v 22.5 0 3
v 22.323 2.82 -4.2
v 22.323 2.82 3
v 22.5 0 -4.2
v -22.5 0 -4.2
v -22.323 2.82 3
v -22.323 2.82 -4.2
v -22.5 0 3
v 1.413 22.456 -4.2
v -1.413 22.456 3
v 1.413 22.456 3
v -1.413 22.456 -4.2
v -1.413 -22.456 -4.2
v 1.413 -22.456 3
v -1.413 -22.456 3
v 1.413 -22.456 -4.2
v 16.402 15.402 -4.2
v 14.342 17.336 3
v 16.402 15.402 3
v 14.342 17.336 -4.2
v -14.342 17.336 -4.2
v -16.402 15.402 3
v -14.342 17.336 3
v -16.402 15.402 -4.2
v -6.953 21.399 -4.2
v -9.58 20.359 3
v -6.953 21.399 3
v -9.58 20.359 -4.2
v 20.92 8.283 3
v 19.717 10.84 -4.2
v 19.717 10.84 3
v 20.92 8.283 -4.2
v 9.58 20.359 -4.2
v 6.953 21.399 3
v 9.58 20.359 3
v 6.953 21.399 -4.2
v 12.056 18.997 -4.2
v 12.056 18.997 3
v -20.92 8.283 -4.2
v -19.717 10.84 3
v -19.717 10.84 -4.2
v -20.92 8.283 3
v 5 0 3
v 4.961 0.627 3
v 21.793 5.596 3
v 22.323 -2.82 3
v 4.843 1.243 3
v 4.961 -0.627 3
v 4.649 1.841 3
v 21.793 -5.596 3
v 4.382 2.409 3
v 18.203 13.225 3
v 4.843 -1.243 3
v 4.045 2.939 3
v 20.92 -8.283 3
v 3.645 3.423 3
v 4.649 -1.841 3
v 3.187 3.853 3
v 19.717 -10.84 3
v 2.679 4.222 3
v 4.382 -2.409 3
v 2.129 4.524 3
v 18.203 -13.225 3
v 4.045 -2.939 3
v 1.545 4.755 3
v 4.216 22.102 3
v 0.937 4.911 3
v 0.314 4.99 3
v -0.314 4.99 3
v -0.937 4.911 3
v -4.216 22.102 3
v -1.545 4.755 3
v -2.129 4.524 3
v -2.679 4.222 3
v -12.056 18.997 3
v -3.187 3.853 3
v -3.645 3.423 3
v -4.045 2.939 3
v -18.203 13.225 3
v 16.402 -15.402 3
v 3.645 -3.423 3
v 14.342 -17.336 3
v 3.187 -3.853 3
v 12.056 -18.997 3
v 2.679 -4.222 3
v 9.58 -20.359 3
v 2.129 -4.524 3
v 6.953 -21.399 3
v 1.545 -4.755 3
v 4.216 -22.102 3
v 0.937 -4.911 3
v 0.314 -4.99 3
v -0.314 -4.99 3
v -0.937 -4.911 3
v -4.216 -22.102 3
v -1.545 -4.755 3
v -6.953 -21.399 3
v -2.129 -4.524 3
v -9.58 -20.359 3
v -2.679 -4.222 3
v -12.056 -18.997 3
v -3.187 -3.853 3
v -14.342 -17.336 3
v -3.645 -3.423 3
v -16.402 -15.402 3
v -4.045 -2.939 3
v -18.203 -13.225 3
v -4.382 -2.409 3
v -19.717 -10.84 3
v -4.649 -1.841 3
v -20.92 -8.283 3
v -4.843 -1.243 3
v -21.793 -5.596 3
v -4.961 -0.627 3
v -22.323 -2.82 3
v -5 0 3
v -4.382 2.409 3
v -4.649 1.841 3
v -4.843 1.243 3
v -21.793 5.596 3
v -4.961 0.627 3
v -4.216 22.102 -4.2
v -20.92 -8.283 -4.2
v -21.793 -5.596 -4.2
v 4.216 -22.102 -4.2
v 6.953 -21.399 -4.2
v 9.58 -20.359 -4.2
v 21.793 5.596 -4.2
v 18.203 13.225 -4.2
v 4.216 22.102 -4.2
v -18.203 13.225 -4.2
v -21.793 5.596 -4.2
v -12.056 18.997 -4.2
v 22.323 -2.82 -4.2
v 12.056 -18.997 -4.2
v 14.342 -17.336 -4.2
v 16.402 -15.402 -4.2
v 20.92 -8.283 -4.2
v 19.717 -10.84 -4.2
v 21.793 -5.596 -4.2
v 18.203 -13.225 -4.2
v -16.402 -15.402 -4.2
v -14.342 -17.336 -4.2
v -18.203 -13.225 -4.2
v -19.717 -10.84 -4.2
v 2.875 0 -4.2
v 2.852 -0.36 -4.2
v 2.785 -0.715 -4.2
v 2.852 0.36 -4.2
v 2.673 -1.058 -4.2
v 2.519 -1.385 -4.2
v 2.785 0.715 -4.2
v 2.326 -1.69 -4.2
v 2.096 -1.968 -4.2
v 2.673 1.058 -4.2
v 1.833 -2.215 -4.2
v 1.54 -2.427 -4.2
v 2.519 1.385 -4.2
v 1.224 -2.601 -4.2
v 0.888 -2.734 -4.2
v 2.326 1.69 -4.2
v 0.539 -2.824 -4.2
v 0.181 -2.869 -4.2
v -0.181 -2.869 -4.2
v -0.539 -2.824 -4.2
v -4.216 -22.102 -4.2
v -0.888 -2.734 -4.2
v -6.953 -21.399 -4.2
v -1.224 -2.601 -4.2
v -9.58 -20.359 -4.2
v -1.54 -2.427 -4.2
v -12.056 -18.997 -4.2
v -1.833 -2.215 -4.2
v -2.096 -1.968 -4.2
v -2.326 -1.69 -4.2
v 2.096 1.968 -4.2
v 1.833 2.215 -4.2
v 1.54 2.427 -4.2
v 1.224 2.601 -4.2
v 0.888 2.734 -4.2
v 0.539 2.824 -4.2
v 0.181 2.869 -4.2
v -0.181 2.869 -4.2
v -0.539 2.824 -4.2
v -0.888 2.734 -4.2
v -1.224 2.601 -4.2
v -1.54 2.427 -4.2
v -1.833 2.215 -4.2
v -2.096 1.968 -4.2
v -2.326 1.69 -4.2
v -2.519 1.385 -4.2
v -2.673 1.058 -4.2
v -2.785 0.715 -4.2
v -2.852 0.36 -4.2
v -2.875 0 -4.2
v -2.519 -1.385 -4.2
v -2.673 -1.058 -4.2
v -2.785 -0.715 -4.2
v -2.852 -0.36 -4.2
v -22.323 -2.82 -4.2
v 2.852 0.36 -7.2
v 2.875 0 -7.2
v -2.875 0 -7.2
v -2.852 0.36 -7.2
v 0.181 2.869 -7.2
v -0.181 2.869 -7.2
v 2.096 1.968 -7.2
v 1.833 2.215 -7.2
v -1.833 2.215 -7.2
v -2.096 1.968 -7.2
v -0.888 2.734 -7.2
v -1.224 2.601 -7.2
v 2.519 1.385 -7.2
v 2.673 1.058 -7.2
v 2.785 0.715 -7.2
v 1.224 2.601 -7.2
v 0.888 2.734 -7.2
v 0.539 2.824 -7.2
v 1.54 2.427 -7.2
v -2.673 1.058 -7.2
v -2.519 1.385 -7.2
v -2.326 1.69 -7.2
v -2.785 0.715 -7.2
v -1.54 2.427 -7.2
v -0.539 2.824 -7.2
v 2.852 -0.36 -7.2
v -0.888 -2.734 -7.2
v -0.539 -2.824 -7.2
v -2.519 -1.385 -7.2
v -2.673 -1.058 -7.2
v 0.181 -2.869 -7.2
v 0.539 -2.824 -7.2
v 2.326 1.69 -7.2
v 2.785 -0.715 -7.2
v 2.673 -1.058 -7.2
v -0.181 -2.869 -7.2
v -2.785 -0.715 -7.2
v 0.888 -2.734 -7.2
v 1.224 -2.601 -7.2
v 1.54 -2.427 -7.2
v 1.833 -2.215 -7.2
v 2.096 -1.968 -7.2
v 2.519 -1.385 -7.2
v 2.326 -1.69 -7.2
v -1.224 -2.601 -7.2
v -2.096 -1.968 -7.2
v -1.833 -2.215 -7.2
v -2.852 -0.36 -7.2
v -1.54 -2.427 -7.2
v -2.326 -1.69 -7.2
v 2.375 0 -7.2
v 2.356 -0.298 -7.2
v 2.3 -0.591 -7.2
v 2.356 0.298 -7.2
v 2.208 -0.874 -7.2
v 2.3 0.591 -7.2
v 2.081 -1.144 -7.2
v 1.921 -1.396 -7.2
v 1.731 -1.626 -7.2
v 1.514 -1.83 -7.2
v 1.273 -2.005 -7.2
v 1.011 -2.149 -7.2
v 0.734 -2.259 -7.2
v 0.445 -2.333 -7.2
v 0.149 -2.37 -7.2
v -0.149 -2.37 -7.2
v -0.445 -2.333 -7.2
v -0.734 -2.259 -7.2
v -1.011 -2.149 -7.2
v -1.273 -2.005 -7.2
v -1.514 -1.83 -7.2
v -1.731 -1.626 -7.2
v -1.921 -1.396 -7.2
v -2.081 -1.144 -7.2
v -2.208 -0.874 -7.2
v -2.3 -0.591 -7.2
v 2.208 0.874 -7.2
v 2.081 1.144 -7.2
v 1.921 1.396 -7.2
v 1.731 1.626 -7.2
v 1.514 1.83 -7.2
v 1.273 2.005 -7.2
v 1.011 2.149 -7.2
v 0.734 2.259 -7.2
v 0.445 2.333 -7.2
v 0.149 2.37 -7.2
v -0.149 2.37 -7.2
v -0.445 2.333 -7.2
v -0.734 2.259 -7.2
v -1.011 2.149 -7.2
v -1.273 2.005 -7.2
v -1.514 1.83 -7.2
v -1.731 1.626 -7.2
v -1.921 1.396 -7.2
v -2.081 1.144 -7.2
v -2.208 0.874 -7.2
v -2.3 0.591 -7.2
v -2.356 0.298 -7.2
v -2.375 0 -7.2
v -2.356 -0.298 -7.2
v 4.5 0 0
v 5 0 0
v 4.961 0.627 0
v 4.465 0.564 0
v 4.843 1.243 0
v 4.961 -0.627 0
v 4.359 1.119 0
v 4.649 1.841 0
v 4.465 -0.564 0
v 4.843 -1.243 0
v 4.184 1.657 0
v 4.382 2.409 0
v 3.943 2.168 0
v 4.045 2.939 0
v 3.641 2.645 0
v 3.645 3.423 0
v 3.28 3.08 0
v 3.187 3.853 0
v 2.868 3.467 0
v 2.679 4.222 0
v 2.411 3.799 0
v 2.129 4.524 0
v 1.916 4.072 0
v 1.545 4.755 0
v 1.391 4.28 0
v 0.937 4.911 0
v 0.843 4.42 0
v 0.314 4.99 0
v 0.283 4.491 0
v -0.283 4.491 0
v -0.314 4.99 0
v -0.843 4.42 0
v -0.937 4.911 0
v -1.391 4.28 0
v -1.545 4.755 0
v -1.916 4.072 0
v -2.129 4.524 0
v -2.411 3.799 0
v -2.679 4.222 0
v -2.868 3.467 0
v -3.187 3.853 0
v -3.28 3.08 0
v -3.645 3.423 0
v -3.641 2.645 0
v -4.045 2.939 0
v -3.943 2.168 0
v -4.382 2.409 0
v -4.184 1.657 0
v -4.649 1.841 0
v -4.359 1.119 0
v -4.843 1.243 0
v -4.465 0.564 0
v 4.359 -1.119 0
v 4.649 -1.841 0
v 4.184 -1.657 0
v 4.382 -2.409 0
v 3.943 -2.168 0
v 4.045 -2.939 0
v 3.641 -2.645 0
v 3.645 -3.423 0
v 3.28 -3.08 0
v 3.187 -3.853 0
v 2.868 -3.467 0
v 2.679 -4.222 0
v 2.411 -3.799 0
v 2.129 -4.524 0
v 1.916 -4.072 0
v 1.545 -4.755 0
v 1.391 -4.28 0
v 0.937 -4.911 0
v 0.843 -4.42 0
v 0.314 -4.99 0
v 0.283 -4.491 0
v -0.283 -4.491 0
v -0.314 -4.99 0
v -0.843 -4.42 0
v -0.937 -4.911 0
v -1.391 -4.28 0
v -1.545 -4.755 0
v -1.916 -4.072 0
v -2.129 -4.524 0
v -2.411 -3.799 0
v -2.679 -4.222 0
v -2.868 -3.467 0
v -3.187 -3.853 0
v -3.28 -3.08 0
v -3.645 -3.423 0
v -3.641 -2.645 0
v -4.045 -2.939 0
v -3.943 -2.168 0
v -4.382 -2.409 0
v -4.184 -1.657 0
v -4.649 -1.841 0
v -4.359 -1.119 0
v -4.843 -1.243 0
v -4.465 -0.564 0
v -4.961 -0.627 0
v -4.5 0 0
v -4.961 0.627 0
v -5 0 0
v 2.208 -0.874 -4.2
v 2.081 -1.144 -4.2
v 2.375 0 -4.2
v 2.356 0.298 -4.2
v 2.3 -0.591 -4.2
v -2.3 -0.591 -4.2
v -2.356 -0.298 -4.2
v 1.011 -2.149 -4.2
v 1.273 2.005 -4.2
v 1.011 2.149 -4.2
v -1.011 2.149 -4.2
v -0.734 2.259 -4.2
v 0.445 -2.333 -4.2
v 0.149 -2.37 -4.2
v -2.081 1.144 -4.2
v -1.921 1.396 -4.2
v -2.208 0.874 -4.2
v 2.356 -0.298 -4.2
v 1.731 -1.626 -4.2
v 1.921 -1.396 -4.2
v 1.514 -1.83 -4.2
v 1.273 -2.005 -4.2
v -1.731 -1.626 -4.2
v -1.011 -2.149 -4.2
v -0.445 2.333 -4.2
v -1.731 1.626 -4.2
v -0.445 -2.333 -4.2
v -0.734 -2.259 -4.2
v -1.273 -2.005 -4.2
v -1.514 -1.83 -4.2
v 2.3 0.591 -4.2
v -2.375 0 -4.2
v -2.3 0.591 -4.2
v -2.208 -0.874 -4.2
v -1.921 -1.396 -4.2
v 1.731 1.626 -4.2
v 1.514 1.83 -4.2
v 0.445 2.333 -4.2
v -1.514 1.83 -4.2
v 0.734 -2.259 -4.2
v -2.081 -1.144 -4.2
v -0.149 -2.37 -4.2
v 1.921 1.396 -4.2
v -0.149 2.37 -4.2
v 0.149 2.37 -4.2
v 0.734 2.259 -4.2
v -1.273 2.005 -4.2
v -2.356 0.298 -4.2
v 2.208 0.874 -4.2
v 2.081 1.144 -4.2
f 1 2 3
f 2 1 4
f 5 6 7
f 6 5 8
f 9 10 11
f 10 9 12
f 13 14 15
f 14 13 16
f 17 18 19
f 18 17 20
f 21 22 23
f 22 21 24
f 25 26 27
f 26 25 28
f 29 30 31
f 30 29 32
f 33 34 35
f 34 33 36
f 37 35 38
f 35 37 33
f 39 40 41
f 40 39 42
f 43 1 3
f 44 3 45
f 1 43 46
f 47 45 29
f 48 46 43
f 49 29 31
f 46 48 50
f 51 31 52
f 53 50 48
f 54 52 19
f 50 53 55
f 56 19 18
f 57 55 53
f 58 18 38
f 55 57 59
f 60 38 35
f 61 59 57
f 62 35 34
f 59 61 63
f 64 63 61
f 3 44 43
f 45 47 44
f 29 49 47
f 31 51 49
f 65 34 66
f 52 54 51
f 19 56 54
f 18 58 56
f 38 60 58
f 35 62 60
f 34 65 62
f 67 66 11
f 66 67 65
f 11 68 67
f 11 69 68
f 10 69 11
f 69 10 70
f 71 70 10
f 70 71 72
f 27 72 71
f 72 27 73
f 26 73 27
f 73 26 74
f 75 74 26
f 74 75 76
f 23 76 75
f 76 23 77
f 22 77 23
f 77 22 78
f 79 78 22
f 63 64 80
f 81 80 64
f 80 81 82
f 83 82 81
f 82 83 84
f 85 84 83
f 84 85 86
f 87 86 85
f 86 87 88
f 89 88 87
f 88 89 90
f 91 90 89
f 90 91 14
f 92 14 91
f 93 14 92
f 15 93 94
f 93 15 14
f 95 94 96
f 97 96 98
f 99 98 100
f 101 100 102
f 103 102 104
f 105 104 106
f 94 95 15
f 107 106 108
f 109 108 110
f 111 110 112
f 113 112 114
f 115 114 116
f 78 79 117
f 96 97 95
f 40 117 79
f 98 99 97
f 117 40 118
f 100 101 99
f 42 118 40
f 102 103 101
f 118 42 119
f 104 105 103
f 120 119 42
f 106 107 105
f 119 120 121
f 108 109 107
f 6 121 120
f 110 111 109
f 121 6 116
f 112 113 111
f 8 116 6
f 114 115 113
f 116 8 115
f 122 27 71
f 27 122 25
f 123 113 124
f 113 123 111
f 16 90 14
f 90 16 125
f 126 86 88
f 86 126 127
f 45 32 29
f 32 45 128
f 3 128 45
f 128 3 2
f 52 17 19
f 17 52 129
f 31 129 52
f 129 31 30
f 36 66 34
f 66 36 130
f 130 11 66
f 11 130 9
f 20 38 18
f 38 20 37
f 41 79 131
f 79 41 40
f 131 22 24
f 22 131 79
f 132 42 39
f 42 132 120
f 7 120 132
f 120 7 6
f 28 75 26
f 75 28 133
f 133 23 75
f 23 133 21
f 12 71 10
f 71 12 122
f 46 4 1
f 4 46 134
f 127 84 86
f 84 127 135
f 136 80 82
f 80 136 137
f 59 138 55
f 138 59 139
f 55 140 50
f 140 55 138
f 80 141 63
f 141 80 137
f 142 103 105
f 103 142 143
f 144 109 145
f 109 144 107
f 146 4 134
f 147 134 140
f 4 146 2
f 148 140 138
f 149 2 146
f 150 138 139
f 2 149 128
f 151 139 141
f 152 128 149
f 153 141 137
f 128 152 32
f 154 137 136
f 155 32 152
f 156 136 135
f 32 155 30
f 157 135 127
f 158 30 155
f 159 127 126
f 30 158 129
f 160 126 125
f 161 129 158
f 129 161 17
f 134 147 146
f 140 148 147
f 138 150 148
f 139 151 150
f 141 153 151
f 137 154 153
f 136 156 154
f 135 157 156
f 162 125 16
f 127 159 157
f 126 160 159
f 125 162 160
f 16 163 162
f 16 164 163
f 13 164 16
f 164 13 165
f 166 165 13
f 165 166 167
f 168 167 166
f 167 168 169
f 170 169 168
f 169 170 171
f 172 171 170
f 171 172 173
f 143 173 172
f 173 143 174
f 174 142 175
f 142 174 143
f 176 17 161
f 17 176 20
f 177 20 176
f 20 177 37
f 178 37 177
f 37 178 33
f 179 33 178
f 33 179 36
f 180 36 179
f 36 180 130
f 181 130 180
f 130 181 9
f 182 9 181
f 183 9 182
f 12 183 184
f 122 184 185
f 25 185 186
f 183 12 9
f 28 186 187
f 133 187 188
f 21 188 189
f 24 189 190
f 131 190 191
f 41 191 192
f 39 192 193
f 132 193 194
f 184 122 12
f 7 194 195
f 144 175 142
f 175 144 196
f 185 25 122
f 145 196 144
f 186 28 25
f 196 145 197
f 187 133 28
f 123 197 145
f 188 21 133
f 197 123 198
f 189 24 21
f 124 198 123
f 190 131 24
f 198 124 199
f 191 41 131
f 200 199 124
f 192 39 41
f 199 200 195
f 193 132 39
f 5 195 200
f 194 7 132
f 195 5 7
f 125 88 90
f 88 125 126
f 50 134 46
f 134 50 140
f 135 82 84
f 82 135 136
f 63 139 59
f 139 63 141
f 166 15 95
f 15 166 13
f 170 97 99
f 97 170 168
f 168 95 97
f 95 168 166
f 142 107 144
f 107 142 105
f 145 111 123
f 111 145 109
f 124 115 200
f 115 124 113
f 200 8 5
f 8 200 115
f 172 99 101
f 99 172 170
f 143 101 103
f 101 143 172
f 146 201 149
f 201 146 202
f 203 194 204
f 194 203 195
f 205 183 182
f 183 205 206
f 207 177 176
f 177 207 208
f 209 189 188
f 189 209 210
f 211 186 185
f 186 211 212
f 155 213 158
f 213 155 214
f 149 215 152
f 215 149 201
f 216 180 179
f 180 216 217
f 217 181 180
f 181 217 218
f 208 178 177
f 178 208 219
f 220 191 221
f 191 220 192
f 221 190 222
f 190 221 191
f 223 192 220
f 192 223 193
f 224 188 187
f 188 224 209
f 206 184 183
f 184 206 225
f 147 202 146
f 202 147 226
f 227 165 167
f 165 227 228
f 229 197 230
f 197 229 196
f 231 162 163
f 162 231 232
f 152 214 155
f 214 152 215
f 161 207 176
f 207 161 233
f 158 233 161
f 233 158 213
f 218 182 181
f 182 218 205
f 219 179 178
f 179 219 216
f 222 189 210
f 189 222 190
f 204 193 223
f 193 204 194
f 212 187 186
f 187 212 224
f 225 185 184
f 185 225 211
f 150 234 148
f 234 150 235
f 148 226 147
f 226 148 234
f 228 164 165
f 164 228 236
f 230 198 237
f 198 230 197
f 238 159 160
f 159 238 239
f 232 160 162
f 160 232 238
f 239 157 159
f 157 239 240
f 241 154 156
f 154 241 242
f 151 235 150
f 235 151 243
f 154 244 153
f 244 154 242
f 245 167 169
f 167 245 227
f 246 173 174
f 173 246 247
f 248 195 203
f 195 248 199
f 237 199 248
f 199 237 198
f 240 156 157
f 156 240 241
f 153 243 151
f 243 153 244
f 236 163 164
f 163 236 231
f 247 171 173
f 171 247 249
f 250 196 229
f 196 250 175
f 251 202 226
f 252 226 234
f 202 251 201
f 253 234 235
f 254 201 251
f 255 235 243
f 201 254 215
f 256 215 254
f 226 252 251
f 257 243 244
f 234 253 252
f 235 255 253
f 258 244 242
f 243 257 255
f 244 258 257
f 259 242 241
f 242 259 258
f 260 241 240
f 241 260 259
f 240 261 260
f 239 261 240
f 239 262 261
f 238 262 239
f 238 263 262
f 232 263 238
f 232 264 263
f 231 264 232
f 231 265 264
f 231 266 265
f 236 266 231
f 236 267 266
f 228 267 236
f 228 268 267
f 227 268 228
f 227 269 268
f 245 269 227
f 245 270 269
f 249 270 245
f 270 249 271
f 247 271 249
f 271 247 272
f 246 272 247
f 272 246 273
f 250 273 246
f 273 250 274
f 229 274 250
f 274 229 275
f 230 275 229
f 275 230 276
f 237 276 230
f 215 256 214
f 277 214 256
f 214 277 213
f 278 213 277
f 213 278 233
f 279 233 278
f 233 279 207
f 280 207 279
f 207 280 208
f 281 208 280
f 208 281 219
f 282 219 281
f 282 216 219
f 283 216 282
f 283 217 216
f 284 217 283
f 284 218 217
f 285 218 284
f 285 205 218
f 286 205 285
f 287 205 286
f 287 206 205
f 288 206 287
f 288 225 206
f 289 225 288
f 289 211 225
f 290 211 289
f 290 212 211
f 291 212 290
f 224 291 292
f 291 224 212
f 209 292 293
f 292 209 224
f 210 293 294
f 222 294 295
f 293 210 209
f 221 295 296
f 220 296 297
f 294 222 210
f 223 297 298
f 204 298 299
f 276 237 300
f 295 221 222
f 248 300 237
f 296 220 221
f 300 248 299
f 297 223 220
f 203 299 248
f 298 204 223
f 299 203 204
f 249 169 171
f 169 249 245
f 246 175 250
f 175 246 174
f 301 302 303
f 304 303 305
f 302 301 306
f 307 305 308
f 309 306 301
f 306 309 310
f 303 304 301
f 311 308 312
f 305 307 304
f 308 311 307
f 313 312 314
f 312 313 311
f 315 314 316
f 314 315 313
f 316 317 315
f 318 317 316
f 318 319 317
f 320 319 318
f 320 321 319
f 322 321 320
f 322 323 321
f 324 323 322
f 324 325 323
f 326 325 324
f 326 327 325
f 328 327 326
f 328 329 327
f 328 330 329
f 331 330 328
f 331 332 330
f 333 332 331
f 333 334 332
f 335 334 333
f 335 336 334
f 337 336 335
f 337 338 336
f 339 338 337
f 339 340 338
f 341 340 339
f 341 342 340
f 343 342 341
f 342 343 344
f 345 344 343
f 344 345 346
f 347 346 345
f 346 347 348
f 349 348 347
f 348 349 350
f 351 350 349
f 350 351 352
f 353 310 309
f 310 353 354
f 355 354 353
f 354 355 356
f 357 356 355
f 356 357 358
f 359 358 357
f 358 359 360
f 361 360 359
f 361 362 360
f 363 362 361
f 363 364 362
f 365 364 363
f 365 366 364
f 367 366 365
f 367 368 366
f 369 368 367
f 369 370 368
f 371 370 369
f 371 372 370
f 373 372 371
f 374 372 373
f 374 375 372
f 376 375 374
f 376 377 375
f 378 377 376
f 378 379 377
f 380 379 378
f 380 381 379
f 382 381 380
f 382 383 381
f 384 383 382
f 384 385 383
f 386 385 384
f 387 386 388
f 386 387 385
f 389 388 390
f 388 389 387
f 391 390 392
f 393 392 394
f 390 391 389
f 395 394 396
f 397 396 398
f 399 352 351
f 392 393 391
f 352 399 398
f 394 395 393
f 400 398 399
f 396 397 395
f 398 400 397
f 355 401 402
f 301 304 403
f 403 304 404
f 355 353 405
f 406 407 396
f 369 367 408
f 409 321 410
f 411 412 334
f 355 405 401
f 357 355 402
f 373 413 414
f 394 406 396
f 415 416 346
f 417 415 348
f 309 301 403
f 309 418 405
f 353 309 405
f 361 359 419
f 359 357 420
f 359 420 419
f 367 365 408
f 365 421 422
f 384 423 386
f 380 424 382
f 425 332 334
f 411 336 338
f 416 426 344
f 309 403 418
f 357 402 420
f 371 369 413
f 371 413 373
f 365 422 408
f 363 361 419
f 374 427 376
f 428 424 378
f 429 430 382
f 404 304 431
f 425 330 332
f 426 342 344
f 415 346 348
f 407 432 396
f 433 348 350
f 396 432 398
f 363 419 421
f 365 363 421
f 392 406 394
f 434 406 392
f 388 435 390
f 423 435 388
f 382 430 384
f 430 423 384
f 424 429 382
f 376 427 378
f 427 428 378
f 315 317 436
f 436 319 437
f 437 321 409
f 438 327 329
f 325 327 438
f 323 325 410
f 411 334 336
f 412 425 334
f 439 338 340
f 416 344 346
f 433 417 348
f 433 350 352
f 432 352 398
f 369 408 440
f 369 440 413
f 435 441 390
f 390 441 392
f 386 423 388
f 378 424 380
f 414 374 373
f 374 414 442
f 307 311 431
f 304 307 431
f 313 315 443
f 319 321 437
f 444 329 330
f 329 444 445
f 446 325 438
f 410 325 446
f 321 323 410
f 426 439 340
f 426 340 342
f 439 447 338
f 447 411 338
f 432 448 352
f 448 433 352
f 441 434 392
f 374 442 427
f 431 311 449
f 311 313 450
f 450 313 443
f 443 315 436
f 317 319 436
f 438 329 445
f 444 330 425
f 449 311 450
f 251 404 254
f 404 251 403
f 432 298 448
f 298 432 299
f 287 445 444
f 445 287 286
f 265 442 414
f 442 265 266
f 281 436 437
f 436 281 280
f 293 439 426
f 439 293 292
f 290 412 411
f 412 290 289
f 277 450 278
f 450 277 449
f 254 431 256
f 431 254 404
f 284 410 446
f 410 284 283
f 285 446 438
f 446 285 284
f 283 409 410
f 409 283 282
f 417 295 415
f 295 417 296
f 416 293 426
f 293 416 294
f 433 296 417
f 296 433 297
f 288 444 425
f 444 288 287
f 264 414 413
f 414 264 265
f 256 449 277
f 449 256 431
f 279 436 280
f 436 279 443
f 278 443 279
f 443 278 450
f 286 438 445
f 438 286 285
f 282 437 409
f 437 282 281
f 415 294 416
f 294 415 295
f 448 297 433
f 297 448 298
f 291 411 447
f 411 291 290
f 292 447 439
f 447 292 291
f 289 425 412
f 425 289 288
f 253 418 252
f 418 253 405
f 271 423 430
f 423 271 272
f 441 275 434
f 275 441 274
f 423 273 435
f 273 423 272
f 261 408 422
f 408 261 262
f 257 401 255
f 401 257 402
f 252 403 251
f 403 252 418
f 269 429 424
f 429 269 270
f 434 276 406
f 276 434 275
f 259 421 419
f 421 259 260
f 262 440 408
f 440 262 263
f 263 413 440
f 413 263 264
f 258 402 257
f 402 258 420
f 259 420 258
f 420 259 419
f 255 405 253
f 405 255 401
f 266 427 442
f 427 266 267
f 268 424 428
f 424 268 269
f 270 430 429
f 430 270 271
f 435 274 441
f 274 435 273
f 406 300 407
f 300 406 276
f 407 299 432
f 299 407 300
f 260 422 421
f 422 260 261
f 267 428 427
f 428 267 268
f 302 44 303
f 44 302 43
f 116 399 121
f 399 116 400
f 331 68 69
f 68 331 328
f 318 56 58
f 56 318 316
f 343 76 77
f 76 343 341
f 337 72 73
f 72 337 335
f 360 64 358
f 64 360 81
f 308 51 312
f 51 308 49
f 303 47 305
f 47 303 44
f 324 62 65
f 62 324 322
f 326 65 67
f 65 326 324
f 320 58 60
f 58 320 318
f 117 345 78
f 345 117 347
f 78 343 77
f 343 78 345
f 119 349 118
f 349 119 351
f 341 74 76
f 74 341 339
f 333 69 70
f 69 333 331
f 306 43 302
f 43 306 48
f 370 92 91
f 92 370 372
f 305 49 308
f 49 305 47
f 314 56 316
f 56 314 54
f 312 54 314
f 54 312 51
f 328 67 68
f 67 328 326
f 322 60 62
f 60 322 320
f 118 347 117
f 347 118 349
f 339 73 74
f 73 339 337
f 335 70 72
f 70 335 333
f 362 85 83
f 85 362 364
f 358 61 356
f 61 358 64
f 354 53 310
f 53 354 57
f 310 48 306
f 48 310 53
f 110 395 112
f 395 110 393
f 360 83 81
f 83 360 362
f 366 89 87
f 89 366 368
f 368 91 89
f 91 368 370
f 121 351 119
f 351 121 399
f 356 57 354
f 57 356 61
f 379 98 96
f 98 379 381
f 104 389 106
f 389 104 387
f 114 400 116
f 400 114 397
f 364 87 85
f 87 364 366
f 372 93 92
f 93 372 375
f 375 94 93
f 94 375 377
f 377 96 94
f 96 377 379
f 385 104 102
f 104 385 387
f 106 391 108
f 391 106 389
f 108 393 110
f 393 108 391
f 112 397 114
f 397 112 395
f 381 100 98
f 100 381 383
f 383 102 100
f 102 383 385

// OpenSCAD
$fn = 50;


difference() {
	union() {
		translate(v = [0, 0, -4.2000000000]) {
			cylinder(h = 7.2000000000, r = 22.5000000000);
		}
		#translate(v = [0, 0, -7.2000000000]) {
			cylinder(h = 7.2000000000, r = 2.8750000000);
		}
	}
	union() {
		translate(v = [0, 0, 0]) {
			rotate(a = [0, 0, 0]) {
				difference() {
					union() {
						translate(v = [0, 0, -7.2000000000]) {
							cylinder(h = 7.2000000000, r = 2.2500000000);
						}
						translate(v = [0, 0, -4.2000000000]) {
							cylinder(h = 4.2000000000, r1 = 2.3750000000, r2 = 4.5000000000);
						}
						translate(v = [0, 0, -7.2000000000]) {
							cylinder(h = 7.2000000000, r = 2.3750000000);
						}
						translate(v = [0, 0, -7.2000000000]) {
							cylinder(h = 7.2000000000, r = 2.2500000000);
						}
					}
					union();
				}
			}
		}
		#cylinder(h = 3, r = 5.0000000000);
	}
}
